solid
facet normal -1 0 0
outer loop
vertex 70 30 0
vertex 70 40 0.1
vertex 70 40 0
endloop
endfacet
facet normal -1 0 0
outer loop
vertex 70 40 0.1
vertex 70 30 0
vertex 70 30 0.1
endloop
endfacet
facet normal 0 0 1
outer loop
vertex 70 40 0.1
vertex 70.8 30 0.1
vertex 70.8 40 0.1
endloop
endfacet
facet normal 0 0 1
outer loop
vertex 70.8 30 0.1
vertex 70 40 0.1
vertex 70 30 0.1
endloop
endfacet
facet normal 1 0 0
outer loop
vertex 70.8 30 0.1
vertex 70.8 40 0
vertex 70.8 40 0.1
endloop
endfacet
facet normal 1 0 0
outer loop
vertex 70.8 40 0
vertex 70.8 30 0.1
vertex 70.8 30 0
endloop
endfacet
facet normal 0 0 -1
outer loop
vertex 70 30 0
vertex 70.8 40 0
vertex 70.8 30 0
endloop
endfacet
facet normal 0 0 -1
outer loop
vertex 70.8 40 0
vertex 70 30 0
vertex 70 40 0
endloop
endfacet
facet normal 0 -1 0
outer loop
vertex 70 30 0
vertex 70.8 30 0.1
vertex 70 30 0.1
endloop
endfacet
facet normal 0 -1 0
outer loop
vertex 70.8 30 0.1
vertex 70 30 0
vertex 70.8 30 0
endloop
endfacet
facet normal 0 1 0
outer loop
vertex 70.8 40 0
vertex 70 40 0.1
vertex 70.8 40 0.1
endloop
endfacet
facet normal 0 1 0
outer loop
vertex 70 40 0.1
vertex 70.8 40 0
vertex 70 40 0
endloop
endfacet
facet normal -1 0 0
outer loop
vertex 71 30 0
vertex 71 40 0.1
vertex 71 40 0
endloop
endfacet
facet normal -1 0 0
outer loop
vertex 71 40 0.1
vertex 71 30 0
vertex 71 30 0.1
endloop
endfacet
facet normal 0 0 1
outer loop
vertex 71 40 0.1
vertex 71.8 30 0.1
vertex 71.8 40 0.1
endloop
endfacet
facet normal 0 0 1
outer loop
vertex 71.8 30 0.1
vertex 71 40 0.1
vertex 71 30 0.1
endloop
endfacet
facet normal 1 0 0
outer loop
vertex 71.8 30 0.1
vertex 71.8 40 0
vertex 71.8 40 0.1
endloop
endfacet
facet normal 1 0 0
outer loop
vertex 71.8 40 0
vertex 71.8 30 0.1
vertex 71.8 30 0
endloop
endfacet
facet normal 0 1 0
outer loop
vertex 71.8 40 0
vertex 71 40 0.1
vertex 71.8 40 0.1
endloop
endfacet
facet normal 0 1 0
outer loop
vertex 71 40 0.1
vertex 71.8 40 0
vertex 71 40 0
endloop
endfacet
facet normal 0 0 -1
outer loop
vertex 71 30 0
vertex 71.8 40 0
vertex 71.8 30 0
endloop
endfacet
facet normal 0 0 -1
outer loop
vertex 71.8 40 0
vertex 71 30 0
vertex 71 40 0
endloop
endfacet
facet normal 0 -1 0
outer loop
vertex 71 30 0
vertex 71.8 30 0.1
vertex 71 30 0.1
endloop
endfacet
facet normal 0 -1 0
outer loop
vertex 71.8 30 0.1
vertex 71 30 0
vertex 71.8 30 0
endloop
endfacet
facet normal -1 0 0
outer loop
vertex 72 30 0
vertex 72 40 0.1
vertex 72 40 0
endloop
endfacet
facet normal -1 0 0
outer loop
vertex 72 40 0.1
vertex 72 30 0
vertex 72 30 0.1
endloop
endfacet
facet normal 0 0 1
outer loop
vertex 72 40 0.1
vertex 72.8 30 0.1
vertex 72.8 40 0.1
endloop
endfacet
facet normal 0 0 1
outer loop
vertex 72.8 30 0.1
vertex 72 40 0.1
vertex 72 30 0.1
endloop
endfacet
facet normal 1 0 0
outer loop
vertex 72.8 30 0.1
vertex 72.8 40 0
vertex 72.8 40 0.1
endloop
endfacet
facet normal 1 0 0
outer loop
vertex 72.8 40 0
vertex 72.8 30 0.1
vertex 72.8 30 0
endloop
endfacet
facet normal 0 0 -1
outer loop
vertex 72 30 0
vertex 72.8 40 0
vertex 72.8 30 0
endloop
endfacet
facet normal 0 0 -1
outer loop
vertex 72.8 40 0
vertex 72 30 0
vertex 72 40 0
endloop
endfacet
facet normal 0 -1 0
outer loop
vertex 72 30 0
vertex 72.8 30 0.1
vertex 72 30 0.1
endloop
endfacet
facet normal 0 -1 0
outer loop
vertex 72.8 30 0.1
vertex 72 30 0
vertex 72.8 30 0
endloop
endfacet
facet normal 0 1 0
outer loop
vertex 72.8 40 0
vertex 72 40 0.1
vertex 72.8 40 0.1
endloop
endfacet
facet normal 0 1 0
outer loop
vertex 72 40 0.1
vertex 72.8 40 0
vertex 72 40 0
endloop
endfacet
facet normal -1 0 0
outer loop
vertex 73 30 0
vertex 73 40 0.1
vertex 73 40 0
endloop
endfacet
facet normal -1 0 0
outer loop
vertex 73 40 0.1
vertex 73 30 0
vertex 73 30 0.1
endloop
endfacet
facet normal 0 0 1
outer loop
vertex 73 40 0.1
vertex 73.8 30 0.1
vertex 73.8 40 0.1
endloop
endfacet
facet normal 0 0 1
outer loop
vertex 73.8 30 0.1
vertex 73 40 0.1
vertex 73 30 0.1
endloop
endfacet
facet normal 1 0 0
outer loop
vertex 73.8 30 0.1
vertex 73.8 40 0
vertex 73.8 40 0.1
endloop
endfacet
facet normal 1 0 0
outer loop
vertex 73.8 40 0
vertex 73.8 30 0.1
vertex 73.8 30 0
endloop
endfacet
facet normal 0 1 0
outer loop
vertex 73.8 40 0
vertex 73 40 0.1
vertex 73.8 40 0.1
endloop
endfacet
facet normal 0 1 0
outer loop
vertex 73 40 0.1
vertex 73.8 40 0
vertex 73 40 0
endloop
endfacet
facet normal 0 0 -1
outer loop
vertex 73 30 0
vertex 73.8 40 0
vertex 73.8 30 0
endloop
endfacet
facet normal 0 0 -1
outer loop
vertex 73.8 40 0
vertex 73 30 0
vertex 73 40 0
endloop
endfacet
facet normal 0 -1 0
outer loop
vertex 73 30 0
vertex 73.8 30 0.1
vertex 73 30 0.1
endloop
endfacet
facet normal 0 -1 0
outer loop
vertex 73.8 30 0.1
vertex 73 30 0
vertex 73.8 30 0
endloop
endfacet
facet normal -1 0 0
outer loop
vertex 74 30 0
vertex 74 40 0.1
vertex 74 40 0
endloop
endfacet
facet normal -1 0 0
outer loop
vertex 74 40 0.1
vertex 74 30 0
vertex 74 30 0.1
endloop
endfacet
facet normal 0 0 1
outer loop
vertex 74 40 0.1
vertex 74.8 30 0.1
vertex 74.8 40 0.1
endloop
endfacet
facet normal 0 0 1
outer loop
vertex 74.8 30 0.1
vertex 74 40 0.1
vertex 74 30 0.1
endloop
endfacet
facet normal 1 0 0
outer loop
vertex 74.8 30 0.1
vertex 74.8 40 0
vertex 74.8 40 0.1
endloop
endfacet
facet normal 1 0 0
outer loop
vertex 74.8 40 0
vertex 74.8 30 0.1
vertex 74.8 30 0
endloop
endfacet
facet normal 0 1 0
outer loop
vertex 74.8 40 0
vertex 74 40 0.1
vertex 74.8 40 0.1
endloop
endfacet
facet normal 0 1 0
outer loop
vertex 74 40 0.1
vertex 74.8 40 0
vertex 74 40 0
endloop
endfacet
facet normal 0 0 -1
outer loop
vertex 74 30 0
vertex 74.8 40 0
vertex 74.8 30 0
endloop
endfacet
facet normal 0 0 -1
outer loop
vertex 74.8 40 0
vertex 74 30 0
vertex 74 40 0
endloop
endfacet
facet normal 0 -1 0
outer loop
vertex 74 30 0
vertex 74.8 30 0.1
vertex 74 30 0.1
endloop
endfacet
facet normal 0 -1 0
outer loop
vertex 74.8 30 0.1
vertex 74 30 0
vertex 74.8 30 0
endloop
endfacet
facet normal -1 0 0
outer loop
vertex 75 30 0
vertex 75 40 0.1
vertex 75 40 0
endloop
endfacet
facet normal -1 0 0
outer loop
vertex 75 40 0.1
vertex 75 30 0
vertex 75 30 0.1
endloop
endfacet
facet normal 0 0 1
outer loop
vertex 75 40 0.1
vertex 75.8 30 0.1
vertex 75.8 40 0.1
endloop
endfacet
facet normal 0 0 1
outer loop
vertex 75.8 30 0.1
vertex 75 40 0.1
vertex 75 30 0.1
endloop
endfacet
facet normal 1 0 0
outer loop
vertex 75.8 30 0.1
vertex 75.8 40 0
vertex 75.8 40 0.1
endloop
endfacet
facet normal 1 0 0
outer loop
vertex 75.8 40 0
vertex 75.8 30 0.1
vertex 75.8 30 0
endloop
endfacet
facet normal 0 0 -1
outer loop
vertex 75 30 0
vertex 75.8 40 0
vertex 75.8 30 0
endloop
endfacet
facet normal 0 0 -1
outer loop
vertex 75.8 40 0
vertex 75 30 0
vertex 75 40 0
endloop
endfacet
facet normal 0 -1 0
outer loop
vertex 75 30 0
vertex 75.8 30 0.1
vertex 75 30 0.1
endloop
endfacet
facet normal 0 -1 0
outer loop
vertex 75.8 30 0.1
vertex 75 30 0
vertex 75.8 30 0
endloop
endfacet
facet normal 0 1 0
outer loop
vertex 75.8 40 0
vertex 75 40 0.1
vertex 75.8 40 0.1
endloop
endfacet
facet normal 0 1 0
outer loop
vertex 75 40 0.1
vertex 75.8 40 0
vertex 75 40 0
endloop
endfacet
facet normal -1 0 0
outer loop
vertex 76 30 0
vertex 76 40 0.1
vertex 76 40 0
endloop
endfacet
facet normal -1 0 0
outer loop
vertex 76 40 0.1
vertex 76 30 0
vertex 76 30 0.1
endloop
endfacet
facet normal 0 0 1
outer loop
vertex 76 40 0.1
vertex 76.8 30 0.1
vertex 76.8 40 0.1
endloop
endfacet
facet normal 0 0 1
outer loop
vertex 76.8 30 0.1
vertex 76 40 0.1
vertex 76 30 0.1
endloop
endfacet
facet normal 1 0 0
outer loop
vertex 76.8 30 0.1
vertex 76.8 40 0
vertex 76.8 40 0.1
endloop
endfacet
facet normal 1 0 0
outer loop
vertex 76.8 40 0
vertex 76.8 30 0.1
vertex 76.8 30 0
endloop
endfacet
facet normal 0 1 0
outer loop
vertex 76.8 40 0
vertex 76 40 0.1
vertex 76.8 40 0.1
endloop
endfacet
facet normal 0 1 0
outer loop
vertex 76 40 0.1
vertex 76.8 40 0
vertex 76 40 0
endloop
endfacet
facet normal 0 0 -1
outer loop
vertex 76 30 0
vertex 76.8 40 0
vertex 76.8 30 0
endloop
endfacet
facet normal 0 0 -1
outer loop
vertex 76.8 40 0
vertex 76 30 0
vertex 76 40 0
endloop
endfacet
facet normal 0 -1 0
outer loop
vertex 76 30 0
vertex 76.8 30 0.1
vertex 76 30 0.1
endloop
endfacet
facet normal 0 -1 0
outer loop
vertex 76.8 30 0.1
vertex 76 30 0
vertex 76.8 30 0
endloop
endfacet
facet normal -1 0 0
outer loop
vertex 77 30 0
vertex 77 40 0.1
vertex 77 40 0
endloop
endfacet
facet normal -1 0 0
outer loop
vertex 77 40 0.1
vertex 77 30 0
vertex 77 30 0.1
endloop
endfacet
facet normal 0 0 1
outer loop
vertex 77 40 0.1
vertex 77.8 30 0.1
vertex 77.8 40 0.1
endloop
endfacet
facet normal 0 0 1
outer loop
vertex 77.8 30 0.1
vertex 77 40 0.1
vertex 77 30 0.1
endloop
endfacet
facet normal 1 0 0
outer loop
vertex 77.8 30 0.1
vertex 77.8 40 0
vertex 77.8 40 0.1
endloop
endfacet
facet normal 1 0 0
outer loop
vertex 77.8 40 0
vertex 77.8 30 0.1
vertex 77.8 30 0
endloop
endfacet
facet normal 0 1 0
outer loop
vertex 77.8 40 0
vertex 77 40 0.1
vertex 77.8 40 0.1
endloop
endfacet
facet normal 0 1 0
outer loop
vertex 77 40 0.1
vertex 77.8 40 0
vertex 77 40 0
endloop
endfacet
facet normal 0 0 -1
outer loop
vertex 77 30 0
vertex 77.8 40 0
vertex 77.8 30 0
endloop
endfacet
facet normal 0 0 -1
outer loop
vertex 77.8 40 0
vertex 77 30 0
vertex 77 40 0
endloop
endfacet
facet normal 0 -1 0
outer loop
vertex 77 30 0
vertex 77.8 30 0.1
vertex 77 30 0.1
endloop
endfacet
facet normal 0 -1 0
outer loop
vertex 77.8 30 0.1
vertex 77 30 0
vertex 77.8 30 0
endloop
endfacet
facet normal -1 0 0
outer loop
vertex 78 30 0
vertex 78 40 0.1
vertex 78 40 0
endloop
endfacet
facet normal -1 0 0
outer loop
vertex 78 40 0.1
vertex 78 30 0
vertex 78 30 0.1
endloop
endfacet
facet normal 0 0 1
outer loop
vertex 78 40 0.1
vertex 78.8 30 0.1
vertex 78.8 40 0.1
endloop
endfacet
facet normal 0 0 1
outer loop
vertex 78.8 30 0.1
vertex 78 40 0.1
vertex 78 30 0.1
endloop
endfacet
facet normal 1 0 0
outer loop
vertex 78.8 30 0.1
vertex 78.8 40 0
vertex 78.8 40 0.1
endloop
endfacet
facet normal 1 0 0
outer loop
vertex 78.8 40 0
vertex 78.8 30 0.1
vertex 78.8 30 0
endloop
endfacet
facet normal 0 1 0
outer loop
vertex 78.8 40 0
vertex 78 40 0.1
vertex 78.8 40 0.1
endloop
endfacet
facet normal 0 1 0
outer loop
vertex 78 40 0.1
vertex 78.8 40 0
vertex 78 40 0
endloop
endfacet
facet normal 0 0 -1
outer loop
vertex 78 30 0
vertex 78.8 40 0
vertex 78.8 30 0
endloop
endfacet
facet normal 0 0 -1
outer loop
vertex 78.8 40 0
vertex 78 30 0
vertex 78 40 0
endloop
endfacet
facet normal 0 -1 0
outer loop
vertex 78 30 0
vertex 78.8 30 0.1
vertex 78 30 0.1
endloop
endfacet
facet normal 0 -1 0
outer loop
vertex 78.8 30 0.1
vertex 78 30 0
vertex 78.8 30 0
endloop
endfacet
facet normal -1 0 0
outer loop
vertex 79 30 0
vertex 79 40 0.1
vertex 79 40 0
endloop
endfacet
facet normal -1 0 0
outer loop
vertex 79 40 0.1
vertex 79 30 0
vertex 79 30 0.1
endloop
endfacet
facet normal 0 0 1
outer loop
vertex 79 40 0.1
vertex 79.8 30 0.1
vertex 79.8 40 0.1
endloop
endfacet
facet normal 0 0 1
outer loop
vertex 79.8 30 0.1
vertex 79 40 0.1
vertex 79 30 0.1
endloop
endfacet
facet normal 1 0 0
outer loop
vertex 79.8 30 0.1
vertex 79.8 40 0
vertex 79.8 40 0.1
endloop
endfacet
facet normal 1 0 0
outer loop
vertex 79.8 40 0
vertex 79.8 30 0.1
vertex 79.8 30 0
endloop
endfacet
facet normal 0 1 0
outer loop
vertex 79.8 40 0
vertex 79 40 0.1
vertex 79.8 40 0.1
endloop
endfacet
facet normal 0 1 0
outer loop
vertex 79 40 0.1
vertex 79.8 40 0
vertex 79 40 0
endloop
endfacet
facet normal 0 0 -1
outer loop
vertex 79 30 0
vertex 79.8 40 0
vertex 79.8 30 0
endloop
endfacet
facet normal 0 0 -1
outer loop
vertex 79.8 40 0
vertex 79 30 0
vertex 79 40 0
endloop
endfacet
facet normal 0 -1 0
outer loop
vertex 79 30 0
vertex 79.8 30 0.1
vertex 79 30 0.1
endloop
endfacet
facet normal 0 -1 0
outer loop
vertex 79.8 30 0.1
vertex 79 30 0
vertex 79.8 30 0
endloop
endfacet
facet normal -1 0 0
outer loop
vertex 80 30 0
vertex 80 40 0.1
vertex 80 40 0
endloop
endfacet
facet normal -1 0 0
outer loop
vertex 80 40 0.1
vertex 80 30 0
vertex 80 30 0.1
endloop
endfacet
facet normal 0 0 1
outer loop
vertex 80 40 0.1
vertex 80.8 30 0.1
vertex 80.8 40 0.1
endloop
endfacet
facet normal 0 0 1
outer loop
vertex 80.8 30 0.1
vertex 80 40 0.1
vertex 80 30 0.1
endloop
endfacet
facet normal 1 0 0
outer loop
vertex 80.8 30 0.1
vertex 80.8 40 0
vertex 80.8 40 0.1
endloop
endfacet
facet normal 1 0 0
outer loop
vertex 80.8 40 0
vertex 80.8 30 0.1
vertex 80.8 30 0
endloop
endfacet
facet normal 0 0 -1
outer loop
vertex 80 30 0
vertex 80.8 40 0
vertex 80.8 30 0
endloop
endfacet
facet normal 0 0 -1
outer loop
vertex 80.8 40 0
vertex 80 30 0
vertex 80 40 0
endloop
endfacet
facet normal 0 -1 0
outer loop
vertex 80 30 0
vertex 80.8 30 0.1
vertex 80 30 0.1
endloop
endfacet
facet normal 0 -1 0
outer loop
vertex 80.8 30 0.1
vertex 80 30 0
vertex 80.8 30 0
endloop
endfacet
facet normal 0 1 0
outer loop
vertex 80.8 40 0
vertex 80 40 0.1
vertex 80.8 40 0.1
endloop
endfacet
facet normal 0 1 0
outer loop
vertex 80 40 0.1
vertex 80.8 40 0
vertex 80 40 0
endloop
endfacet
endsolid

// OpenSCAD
translate([10+60,10+20,0])
        for (i = [0 : 10]){
            translate([i,0,0])
                cube(size = [0.8,10,0.1]);
    }
